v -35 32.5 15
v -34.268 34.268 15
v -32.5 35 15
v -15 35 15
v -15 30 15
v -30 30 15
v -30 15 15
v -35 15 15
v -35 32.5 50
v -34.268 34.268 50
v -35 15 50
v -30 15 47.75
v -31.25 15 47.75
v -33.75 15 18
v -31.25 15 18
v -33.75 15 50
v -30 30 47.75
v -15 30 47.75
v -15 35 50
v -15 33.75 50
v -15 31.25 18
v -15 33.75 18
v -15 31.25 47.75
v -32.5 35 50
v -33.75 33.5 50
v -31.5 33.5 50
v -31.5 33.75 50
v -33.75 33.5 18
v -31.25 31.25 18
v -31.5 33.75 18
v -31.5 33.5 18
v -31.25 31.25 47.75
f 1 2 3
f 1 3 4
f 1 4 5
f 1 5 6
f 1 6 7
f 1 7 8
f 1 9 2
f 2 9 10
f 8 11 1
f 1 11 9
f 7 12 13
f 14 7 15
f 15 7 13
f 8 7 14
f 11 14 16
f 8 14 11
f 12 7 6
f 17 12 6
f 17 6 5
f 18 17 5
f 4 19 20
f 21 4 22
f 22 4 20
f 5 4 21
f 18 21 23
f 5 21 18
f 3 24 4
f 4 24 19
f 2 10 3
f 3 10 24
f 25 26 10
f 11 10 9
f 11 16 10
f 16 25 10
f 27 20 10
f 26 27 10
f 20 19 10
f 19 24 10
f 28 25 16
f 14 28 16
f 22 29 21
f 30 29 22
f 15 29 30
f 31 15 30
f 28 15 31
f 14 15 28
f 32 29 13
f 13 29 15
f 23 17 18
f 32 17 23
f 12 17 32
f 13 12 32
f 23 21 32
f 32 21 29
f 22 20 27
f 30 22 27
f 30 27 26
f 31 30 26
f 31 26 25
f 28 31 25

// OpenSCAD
difference(){
union(){
for(x=[0:1]){
			rotate([0,0,x*90])translate([0,32.5,32.5])cube([65,5,35], center=true);	
}translate([-32.5, 32.5,32.5])cylinder(r=2.5,h=35, center=true);

}
union()
{
			translate([1,32.5,34.5])cube([65,2.5,33], center=true);
			translate([1,30,49])cube([65,4,2.5], center=true);
			rotate([0,0,90])translate([1,32.5,34.5])cube([65,2.5,33], center=true);
			rotate([0,0,90])translate([1,30,49])cube([65,4, 2.5], center=true);
			translate([30,-32.5,34.5])cube([65,7,50], center=true);

			translate([30,32.5,34.5])cube([90,7,50], center=true);
			translate([-32.5,-30,34.5])cube([7,90,50], center=true);
}
}
